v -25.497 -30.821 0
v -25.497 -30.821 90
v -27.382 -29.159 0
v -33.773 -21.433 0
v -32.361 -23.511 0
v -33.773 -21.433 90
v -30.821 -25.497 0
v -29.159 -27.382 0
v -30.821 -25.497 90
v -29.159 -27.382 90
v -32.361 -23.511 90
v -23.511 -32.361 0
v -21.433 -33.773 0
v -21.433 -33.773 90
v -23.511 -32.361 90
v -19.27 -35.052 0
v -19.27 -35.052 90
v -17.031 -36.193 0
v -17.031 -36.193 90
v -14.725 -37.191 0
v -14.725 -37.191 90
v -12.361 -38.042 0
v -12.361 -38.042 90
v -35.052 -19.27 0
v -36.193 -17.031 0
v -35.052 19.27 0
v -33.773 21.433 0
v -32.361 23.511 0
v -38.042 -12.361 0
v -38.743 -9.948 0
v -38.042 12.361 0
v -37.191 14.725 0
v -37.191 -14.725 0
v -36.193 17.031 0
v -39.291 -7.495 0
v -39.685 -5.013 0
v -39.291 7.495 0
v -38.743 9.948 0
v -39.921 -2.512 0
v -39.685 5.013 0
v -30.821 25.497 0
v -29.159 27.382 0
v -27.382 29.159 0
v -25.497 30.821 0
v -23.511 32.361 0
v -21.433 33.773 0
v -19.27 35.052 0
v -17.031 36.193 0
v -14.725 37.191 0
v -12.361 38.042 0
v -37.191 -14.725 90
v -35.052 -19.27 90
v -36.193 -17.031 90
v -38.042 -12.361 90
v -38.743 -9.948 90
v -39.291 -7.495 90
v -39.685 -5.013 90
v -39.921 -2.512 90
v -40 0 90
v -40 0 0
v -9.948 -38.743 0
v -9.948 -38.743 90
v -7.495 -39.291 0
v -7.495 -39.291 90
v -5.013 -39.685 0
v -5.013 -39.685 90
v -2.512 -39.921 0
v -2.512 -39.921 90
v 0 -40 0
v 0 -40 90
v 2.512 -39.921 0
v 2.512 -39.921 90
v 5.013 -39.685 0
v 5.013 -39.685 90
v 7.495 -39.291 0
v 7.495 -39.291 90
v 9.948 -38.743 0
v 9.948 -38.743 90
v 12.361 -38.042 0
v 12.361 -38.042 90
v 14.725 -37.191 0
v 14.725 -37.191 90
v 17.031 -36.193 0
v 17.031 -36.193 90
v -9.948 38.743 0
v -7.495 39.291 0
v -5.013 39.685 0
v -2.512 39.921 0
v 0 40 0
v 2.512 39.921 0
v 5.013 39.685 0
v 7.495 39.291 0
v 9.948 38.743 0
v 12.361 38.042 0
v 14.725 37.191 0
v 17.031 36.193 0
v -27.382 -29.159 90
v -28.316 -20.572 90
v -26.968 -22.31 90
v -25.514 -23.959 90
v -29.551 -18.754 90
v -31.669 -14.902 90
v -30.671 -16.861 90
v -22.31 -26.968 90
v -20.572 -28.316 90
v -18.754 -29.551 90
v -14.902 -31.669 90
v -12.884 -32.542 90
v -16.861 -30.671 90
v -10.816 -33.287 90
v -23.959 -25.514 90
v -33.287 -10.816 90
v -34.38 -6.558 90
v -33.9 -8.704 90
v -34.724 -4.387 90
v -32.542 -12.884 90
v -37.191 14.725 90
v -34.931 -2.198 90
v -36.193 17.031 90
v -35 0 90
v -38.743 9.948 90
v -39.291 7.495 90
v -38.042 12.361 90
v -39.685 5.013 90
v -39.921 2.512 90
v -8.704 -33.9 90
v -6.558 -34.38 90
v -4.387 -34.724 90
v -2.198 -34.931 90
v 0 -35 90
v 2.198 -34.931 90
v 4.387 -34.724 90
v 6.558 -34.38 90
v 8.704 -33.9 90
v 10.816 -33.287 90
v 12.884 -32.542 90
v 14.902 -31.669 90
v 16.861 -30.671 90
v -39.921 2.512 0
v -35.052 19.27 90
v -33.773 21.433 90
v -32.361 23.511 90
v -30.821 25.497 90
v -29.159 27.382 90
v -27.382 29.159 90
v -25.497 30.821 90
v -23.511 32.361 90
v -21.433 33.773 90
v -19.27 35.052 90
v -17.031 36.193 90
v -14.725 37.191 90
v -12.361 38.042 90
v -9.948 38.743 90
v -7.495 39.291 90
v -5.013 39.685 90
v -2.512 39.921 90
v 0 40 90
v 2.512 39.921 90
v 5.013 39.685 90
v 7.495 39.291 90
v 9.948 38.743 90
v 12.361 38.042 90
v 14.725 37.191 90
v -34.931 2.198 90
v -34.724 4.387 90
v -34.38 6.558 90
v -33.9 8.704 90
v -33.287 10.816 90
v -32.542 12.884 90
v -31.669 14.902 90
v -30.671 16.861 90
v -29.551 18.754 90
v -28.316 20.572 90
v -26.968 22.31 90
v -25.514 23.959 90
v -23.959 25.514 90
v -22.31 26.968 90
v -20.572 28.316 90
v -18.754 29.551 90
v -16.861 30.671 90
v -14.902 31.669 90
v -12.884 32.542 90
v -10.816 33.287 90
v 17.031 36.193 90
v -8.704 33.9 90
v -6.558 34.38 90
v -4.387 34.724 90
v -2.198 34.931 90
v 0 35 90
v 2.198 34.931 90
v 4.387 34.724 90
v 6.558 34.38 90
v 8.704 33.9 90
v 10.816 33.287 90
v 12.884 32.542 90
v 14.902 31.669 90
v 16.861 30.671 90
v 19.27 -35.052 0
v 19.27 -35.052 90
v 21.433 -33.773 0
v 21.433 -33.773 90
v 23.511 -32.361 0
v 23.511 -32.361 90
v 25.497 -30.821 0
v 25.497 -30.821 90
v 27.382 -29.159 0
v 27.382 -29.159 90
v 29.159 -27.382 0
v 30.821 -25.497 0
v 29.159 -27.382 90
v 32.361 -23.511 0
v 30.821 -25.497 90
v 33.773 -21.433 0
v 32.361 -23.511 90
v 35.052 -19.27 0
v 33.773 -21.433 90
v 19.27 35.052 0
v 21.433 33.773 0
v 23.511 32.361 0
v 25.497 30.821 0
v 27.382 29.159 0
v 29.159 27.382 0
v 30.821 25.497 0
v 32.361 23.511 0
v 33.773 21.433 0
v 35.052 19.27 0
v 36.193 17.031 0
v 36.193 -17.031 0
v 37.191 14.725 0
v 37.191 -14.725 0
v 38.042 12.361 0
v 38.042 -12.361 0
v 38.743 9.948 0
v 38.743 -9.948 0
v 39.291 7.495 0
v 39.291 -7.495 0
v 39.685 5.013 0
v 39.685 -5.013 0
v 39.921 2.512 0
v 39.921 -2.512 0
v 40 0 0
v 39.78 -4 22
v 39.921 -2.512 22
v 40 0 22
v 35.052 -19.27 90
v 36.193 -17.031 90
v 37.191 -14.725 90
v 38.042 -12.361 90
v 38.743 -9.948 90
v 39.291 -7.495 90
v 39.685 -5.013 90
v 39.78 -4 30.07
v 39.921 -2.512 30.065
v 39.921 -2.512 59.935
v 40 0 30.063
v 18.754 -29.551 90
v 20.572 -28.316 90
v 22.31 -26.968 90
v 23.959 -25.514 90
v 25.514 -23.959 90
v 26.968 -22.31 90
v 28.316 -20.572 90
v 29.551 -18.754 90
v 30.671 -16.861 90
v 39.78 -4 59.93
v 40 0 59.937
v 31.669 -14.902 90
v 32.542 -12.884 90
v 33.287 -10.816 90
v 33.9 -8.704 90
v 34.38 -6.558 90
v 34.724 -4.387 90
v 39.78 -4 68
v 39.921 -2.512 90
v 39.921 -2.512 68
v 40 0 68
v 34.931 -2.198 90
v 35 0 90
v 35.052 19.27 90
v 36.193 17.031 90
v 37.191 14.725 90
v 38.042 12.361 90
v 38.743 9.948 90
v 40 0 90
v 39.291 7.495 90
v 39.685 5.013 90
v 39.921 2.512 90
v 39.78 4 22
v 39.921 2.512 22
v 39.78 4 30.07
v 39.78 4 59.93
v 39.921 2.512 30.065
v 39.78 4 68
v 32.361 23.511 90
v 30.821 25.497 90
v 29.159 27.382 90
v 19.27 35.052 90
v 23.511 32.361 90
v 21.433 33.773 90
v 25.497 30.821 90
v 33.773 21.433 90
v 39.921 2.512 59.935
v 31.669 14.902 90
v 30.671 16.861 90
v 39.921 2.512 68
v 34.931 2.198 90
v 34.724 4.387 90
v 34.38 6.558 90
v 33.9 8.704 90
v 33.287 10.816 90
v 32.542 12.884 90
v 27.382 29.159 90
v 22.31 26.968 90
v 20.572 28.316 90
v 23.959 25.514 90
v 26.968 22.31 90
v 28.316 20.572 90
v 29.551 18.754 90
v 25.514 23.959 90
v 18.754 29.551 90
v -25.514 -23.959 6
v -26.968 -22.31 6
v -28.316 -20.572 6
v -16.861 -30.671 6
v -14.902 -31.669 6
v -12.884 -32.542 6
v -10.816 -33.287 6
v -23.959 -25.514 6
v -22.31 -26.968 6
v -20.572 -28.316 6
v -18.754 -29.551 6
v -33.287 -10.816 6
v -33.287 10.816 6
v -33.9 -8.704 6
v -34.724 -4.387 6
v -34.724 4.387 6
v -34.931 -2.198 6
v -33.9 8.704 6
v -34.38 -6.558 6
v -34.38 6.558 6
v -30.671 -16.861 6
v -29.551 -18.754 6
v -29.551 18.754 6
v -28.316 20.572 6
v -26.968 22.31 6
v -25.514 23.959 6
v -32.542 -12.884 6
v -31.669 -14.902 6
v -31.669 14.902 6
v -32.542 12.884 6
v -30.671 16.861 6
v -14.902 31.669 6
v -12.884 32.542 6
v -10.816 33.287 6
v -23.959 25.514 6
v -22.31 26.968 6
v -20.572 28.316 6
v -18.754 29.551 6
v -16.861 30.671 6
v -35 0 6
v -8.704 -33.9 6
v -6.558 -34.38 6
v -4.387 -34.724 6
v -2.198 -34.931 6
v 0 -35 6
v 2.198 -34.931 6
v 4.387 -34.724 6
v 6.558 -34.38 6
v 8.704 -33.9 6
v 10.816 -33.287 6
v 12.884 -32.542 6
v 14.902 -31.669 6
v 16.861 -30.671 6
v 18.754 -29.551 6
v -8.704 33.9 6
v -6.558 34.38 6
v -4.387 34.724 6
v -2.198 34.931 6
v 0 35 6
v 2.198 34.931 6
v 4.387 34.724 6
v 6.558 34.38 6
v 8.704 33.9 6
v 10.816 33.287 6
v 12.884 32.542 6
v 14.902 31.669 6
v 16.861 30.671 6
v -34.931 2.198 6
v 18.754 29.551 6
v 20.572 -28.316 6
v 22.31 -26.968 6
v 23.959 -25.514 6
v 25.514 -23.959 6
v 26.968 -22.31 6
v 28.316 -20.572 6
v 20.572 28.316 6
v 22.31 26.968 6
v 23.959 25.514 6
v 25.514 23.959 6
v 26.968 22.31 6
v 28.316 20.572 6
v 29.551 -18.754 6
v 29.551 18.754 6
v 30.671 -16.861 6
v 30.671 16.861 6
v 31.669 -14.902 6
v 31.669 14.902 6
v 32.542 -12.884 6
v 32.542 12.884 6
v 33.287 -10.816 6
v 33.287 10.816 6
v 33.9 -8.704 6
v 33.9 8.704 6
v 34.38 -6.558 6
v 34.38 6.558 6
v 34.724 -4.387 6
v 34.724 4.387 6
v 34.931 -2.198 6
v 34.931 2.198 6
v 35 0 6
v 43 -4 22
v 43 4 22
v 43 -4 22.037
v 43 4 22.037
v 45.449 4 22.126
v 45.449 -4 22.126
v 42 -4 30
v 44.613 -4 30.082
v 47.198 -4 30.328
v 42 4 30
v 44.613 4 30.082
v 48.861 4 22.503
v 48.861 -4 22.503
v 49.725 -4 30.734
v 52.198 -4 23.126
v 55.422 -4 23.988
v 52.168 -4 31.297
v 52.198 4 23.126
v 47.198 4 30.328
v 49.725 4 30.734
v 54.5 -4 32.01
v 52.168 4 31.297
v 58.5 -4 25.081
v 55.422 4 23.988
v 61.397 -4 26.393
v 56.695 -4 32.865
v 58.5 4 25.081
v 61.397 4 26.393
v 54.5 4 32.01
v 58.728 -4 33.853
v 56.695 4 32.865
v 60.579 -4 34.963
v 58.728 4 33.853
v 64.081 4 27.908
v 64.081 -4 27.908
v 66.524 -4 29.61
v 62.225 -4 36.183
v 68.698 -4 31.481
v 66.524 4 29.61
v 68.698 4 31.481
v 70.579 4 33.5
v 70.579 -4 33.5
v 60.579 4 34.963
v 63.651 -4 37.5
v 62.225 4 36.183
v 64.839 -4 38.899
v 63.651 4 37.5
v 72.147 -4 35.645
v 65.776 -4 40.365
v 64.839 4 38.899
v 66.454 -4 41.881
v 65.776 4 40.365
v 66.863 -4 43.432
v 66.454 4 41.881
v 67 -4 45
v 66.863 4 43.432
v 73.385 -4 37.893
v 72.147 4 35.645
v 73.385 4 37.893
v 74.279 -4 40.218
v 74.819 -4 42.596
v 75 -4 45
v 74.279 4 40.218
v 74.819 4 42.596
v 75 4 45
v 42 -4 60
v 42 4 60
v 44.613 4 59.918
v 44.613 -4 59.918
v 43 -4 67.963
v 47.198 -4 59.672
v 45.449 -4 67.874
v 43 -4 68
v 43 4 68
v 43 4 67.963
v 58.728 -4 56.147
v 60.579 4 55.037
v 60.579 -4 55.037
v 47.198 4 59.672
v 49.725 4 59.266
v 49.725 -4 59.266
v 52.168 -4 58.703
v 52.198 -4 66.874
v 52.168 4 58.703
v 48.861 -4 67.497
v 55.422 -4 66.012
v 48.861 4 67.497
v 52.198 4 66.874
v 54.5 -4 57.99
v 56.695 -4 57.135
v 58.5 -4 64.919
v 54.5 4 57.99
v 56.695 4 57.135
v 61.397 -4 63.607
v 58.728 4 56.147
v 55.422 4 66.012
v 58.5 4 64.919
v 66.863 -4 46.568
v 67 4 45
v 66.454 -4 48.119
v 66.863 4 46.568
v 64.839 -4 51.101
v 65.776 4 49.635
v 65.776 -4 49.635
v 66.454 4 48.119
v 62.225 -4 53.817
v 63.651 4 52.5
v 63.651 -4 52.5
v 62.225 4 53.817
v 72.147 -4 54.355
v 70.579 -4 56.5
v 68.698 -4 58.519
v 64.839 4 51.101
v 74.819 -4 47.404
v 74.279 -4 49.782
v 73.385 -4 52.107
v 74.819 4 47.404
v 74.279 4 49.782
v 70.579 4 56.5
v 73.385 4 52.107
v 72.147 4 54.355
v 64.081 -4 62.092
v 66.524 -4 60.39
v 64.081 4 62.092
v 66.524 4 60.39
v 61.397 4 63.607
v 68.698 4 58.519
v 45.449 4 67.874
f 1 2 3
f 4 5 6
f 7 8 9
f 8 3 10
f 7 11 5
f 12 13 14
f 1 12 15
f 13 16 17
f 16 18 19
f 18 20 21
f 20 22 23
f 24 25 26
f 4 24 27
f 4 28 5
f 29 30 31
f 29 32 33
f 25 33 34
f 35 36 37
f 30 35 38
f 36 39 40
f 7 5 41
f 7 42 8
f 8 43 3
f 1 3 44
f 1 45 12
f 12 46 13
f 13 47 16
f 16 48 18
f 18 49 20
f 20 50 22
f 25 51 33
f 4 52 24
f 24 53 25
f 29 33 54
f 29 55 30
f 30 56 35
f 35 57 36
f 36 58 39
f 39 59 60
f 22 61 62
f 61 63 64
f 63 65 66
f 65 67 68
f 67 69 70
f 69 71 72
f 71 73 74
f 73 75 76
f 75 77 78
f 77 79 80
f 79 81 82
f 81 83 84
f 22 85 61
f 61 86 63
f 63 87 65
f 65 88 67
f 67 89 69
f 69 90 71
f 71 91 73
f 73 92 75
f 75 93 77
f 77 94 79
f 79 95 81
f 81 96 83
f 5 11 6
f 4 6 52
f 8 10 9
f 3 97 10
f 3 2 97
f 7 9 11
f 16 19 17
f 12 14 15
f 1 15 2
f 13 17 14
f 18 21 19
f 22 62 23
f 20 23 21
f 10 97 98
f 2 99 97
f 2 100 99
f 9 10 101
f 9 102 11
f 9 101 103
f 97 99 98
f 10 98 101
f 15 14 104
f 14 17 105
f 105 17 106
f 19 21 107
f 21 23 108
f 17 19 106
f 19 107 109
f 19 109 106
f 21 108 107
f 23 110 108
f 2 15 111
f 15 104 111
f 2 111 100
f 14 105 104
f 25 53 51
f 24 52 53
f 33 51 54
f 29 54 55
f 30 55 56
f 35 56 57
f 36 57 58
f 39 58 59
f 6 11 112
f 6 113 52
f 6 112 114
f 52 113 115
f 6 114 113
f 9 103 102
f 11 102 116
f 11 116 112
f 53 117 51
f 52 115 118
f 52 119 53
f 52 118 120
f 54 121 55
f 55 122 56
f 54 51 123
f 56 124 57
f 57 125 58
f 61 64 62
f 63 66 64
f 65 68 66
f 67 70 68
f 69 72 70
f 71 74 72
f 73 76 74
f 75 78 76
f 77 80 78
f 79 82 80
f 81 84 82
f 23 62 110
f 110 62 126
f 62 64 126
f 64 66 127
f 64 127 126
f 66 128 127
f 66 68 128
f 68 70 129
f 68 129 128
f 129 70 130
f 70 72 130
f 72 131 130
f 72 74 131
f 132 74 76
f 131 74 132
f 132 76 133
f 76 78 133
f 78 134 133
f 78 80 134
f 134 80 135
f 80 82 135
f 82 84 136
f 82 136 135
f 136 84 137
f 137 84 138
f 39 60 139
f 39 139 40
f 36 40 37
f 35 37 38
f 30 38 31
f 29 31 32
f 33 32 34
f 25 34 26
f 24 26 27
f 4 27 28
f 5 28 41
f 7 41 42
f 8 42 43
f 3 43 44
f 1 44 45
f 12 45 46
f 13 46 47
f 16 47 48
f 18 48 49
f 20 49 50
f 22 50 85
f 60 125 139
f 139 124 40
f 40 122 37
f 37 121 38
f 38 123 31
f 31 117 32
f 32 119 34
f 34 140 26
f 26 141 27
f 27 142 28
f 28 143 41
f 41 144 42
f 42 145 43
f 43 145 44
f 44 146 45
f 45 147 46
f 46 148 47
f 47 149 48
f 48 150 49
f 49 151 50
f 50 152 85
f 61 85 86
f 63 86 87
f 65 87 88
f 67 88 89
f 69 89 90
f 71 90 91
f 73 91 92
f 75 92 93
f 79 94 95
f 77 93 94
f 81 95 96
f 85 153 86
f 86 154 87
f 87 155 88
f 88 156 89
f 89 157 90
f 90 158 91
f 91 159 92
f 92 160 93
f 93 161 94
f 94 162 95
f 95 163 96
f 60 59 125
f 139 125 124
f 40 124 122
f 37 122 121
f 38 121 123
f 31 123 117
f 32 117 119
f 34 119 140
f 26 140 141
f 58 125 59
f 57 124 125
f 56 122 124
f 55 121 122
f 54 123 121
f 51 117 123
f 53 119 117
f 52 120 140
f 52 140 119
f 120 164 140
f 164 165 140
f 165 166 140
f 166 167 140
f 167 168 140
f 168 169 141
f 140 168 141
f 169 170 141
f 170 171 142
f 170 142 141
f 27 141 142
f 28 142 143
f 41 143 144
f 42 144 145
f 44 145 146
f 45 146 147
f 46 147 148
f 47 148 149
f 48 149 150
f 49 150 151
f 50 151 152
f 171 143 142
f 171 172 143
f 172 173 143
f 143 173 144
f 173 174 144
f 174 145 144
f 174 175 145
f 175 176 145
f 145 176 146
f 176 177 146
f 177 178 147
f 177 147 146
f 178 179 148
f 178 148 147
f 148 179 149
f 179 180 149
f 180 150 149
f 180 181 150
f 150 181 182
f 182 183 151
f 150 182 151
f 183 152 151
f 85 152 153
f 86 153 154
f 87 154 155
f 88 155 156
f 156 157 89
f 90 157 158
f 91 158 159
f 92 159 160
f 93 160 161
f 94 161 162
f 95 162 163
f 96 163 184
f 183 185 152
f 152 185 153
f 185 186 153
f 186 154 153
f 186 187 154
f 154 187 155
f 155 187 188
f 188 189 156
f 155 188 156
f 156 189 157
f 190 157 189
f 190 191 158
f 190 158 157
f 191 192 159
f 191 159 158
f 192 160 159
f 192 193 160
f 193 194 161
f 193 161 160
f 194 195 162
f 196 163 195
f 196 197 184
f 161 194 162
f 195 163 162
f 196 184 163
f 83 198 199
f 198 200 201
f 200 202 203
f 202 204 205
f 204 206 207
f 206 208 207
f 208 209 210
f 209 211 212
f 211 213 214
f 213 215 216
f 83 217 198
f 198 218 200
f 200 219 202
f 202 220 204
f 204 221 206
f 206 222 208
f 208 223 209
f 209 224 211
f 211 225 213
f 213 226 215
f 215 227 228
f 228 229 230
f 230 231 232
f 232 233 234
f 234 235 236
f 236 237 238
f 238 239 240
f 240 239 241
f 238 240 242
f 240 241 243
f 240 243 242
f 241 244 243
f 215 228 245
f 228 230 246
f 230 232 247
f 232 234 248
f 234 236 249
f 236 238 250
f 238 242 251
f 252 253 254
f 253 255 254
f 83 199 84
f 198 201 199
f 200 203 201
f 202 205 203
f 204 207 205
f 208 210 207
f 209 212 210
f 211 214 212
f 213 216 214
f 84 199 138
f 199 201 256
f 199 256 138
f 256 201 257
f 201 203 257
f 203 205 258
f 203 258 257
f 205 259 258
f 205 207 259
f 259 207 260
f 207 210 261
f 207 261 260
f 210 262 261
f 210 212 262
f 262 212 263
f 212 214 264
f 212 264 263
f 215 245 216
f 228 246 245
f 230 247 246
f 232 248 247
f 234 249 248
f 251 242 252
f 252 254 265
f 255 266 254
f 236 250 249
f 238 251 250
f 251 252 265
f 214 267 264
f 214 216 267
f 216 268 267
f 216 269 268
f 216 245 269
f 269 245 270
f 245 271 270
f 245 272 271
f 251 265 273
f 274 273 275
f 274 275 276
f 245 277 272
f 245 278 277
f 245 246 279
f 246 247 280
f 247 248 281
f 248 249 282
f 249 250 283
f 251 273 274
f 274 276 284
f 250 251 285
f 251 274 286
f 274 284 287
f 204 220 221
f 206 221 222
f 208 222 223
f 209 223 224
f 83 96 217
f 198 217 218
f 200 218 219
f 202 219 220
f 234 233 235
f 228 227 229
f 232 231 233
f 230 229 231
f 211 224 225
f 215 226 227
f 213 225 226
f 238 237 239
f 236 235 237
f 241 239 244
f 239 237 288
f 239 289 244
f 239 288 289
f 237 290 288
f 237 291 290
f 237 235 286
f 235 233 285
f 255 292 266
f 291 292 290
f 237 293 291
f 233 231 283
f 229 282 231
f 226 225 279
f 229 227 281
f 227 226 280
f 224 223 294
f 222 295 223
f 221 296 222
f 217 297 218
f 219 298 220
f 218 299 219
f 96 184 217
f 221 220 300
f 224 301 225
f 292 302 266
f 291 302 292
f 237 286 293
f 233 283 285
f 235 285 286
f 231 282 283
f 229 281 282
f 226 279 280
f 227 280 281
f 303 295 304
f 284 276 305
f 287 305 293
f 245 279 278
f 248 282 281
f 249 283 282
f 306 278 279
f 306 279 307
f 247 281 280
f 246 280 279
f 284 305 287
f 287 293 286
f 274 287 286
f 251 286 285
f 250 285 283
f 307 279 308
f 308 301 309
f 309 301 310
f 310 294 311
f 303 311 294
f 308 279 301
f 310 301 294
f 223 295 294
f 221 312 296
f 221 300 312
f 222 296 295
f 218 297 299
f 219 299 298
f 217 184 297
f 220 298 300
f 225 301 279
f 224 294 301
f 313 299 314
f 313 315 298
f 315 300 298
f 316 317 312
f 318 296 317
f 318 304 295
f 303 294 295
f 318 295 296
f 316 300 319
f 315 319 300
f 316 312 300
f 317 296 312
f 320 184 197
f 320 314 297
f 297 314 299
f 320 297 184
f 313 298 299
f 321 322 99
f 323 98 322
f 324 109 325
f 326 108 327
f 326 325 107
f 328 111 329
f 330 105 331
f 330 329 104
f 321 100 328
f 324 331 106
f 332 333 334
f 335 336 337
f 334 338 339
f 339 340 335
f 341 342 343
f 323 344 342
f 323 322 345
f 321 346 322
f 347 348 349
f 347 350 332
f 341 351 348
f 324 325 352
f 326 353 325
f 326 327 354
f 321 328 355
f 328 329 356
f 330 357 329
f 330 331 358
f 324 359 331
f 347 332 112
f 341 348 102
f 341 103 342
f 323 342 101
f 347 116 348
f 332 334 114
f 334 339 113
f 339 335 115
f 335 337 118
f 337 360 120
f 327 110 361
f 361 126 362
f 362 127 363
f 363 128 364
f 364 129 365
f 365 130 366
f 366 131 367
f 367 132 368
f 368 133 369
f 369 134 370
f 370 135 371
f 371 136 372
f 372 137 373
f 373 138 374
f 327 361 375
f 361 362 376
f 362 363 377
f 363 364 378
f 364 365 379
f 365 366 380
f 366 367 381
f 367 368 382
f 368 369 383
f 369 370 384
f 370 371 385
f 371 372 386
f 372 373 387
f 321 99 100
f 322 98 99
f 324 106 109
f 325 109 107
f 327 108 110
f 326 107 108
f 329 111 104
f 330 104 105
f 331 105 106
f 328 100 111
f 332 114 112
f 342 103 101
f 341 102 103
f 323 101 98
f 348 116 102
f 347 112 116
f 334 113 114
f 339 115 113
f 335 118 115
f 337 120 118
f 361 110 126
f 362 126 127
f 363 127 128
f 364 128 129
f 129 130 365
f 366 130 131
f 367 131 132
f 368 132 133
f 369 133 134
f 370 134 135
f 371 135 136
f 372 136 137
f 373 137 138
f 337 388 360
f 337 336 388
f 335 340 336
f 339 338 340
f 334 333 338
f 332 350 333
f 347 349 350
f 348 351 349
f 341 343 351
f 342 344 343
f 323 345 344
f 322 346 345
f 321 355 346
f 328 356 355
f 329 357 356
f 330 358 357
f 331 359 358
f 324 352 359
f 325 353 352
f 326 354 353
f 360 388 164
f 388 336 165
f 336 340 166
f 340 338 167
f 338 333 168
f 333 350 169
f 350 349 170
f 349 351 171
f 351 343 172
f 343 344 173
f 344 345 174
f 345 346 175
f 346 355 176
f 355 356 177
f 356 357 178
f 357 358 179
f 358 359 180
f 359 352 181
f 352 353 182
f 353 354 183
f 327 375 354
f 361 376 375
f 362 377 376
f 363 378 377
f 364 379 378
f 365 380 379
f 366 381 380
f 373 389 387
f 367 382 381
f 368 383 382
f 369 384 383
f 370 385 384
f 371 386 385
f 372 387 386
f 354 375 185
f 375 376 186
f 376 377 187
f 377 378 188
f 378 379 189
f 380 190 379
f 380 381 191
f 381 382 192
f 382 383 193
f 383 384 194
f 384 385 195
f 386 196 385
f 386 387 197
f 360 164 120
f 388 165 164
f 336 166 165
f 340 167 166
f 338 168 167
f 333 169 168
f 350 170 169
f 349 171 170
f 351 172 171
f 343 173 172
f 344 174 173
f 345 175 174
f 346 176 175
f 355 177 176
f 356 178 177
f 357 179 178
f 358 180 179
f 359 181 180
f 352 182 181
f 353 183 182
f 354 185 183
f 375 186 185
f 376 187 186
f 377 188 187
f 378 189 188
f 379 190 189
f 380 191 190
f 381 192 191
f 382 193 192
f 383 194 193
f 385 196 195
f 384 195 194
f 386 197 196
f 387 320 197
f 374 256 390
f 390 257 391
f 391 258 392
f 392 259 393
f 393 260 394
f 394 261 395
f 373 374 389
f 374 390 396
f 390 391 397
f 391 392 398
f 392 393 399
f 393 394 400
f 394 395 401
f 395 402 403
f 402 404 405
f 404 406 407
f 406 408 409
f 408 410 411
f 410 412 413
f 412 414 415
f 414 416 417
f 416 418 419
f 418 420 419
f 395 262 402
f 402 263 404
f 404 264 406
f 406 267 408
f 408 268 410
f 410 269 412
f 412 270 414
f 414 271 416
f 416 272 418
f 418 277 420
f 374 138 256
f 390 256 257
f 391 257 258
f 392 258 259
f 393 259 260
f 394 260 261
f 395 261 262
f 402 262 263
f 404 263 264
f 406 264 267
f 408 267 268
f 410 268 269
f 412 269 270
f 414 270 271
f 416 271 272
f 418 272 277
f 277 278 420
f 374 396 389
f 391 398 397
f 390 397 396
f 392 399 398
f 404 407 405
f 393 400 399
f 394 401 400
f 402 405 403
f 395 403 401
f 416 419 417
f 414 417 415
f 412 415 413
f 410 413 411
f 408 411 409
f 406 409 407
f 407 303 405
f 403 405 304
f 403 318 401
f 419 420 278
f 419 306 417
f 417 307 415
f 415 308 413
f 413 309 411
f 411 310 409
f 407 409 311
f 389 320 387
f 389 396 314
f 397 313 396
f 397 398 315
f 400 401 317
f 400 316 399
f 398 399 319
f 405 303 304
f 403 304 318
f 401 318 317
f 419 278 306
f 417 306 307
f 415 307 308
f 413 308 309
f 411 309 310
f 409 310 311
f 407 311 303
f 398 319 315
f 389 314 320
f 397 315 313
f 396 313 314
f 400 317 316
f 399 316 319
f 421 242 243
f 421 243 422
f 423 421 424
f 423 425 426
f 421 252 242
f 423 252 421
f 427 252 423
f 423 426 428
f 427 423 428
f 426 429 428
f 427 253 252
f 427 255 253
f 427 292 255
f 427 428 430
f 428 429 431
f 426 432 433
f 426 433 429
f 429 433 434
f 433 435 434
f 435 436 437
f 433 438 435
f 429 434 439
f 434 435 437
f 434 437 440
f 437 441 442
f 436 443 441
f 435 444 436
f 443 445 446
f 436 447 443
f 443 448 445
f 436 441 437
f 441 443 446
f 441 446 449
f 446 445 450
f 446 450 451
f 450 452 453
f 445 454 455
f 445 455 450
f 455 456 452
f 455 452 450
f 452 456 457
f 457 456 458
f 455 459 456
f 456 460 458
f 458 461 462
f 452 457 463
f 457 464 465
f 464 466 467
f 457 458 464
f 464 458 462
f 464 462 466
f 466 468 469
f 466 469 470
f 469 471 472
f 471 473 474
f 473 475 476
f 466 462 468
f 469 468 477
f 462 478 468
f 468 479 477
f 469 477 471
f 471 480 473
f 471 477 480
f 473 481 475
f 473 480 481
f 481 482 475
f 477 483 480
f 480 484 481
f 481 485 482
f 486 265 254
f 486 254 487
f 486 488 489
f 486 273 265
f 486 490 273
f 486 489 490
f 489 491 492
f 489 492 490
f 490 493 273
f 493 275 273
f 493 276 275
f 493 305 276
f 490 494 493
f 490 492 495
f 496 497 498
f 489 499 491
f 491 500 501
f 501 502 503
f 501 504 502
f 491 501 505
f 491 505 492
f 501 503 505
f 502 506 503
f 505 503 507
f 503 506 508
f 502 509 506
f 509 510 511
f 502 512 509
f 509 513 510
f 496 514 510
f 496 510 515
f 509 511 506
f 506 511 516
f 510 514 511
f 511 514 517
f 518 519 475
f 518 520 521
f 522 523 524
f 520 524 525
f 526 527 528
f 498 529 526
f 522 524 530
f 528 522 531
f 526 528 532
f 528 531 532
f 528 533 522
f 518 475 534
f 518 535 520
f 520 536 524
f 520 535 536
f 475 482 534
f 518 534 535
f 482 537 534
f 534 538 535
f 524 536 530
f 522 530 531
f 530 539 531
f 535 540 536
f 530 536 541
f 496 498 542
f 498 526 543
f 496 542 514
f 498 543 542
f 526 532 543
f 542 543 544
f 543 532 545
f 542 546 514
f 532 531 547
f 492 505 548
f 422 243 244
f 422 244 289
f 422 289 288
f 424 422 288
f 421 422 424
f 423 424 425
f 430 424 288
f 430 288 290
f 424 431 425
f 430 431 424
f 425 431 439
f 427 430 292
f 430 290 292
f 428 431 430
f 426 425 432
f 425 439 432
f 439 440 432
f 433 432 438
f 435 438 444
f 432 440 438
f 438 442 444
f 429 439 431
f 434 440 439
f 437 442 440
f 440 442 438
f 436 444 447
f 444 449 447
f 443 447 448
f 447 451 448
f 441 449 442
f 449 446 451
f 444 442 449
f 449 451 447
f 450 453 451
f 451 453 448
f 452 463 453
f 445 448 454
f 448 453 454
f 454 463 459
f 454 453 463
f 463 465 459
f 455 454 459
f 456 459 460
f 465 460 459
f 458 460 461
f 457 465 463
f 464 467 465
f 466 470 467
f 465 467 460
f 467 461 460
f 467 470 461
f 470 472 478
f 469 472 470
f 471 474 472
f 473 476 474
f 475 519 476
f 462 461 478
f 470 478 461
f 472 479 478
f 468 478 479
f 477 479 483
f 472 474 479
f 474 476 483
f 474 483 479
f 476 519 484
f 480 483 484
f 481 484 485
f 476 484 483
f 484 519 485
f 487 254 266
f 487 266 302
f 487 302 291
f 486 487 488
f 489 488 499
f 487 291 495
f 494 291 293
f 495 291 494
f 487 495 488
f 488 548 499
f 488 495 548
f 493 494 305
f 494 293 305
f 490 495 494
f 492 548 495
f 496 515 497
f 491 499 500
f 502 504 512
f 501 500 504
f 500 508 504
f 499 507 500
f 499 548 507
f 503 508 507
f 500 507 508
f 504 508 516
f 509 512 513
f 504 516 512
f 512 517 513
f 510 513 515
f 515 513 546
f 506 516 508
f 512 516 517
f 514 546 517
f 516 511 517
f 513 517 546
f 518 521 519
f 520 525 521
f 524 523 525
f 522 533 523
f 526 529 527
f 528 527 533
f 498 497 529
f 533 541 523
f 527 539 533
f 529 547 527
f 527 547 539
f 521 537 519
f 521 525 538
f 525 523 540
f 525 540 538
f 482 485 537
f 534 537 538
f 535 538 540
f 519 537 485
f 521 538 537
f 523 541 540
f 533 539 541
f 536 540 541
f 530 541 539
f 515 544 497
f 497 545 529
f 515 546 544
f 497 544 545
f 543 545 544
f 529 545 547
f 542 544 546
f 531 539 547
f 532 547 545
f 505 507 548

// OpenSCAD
// Mug parameters
outer_diameter = 80;
inner_diameter = 70;
mug_height = 90;
bottom_thickness = 6;
wall_thickness = 5;

// Handle parameters
handle_inner_height = 30;
handle_inner_width = 25;
handle_thickness = 8;

// Derived values
outer_radius = outer_diameter / 2;
inner_radius = inner_diameter / 2;

// Handle position (centered vertically)
handle_center_z = mug_height / 2;

module mug_body() {
    difference() {
        // Outer cylinder
        cylinder(h = mug_height, r = outer_radius, $fn = 100);
        
        // Inner cavity (hollow part for liquid)
        translate([0, 0, bottom_thickness])
            cylinder(h = mug_height - bottom_thickness + 1, r = inner_radius, $fn = 100);
    }
}

module handle() {
    // Handle dimensions
    handle_outer_height = handle_inner_height + 2 * handle_thickness;
    handle_outer_width = handle_inner_width + handle_thickness;
    
    // Position handle on +X side
    handle_x_offset = outer_radius - 2; // Overlap with mug body for solid union
    
    translate([handle_x_offset, 0, handle_center_z - handle_outer_height / 2]) {
        rotate([90, 0, 0]) {
            linear_extrude(height = handle_thickness, center = true) {
                difference() {
                    // Outer D-shape
                    union() {
                        // Rectangular part connecting to mug
                        translate([0, handle_outer_height / 2])
                            square([handle_thickness + 2, handle_outer_height], center = true);
                        
                        // Semi-circular outer part
                        translate([handle_thickness / 2, handle_outer_height / 2])
                            resize([handle_outer_width * 2, handle_outer_height])
                                circle(d = handle_outer_height, $fn = 60);
                    }
                    
                    // Inner cutout (D-shape hole)
                    translate([handle_thickness / 2, handle_outer_height / 2])
                        resize([handle_inner_width * 2, handle_inner_height])
                            circle(d = handle_inner_height, $fn = 60);
                    
                    // Cut off the left side to make D-shape
                    translate([-handle_outer_width - 5, 0])
                        square([handle_outer_width + 5, handle_outer_height + 10]);
                }
            }
        }
    }
}

// Final mug assembly
union() {
    mug_body();
    handle();
}
